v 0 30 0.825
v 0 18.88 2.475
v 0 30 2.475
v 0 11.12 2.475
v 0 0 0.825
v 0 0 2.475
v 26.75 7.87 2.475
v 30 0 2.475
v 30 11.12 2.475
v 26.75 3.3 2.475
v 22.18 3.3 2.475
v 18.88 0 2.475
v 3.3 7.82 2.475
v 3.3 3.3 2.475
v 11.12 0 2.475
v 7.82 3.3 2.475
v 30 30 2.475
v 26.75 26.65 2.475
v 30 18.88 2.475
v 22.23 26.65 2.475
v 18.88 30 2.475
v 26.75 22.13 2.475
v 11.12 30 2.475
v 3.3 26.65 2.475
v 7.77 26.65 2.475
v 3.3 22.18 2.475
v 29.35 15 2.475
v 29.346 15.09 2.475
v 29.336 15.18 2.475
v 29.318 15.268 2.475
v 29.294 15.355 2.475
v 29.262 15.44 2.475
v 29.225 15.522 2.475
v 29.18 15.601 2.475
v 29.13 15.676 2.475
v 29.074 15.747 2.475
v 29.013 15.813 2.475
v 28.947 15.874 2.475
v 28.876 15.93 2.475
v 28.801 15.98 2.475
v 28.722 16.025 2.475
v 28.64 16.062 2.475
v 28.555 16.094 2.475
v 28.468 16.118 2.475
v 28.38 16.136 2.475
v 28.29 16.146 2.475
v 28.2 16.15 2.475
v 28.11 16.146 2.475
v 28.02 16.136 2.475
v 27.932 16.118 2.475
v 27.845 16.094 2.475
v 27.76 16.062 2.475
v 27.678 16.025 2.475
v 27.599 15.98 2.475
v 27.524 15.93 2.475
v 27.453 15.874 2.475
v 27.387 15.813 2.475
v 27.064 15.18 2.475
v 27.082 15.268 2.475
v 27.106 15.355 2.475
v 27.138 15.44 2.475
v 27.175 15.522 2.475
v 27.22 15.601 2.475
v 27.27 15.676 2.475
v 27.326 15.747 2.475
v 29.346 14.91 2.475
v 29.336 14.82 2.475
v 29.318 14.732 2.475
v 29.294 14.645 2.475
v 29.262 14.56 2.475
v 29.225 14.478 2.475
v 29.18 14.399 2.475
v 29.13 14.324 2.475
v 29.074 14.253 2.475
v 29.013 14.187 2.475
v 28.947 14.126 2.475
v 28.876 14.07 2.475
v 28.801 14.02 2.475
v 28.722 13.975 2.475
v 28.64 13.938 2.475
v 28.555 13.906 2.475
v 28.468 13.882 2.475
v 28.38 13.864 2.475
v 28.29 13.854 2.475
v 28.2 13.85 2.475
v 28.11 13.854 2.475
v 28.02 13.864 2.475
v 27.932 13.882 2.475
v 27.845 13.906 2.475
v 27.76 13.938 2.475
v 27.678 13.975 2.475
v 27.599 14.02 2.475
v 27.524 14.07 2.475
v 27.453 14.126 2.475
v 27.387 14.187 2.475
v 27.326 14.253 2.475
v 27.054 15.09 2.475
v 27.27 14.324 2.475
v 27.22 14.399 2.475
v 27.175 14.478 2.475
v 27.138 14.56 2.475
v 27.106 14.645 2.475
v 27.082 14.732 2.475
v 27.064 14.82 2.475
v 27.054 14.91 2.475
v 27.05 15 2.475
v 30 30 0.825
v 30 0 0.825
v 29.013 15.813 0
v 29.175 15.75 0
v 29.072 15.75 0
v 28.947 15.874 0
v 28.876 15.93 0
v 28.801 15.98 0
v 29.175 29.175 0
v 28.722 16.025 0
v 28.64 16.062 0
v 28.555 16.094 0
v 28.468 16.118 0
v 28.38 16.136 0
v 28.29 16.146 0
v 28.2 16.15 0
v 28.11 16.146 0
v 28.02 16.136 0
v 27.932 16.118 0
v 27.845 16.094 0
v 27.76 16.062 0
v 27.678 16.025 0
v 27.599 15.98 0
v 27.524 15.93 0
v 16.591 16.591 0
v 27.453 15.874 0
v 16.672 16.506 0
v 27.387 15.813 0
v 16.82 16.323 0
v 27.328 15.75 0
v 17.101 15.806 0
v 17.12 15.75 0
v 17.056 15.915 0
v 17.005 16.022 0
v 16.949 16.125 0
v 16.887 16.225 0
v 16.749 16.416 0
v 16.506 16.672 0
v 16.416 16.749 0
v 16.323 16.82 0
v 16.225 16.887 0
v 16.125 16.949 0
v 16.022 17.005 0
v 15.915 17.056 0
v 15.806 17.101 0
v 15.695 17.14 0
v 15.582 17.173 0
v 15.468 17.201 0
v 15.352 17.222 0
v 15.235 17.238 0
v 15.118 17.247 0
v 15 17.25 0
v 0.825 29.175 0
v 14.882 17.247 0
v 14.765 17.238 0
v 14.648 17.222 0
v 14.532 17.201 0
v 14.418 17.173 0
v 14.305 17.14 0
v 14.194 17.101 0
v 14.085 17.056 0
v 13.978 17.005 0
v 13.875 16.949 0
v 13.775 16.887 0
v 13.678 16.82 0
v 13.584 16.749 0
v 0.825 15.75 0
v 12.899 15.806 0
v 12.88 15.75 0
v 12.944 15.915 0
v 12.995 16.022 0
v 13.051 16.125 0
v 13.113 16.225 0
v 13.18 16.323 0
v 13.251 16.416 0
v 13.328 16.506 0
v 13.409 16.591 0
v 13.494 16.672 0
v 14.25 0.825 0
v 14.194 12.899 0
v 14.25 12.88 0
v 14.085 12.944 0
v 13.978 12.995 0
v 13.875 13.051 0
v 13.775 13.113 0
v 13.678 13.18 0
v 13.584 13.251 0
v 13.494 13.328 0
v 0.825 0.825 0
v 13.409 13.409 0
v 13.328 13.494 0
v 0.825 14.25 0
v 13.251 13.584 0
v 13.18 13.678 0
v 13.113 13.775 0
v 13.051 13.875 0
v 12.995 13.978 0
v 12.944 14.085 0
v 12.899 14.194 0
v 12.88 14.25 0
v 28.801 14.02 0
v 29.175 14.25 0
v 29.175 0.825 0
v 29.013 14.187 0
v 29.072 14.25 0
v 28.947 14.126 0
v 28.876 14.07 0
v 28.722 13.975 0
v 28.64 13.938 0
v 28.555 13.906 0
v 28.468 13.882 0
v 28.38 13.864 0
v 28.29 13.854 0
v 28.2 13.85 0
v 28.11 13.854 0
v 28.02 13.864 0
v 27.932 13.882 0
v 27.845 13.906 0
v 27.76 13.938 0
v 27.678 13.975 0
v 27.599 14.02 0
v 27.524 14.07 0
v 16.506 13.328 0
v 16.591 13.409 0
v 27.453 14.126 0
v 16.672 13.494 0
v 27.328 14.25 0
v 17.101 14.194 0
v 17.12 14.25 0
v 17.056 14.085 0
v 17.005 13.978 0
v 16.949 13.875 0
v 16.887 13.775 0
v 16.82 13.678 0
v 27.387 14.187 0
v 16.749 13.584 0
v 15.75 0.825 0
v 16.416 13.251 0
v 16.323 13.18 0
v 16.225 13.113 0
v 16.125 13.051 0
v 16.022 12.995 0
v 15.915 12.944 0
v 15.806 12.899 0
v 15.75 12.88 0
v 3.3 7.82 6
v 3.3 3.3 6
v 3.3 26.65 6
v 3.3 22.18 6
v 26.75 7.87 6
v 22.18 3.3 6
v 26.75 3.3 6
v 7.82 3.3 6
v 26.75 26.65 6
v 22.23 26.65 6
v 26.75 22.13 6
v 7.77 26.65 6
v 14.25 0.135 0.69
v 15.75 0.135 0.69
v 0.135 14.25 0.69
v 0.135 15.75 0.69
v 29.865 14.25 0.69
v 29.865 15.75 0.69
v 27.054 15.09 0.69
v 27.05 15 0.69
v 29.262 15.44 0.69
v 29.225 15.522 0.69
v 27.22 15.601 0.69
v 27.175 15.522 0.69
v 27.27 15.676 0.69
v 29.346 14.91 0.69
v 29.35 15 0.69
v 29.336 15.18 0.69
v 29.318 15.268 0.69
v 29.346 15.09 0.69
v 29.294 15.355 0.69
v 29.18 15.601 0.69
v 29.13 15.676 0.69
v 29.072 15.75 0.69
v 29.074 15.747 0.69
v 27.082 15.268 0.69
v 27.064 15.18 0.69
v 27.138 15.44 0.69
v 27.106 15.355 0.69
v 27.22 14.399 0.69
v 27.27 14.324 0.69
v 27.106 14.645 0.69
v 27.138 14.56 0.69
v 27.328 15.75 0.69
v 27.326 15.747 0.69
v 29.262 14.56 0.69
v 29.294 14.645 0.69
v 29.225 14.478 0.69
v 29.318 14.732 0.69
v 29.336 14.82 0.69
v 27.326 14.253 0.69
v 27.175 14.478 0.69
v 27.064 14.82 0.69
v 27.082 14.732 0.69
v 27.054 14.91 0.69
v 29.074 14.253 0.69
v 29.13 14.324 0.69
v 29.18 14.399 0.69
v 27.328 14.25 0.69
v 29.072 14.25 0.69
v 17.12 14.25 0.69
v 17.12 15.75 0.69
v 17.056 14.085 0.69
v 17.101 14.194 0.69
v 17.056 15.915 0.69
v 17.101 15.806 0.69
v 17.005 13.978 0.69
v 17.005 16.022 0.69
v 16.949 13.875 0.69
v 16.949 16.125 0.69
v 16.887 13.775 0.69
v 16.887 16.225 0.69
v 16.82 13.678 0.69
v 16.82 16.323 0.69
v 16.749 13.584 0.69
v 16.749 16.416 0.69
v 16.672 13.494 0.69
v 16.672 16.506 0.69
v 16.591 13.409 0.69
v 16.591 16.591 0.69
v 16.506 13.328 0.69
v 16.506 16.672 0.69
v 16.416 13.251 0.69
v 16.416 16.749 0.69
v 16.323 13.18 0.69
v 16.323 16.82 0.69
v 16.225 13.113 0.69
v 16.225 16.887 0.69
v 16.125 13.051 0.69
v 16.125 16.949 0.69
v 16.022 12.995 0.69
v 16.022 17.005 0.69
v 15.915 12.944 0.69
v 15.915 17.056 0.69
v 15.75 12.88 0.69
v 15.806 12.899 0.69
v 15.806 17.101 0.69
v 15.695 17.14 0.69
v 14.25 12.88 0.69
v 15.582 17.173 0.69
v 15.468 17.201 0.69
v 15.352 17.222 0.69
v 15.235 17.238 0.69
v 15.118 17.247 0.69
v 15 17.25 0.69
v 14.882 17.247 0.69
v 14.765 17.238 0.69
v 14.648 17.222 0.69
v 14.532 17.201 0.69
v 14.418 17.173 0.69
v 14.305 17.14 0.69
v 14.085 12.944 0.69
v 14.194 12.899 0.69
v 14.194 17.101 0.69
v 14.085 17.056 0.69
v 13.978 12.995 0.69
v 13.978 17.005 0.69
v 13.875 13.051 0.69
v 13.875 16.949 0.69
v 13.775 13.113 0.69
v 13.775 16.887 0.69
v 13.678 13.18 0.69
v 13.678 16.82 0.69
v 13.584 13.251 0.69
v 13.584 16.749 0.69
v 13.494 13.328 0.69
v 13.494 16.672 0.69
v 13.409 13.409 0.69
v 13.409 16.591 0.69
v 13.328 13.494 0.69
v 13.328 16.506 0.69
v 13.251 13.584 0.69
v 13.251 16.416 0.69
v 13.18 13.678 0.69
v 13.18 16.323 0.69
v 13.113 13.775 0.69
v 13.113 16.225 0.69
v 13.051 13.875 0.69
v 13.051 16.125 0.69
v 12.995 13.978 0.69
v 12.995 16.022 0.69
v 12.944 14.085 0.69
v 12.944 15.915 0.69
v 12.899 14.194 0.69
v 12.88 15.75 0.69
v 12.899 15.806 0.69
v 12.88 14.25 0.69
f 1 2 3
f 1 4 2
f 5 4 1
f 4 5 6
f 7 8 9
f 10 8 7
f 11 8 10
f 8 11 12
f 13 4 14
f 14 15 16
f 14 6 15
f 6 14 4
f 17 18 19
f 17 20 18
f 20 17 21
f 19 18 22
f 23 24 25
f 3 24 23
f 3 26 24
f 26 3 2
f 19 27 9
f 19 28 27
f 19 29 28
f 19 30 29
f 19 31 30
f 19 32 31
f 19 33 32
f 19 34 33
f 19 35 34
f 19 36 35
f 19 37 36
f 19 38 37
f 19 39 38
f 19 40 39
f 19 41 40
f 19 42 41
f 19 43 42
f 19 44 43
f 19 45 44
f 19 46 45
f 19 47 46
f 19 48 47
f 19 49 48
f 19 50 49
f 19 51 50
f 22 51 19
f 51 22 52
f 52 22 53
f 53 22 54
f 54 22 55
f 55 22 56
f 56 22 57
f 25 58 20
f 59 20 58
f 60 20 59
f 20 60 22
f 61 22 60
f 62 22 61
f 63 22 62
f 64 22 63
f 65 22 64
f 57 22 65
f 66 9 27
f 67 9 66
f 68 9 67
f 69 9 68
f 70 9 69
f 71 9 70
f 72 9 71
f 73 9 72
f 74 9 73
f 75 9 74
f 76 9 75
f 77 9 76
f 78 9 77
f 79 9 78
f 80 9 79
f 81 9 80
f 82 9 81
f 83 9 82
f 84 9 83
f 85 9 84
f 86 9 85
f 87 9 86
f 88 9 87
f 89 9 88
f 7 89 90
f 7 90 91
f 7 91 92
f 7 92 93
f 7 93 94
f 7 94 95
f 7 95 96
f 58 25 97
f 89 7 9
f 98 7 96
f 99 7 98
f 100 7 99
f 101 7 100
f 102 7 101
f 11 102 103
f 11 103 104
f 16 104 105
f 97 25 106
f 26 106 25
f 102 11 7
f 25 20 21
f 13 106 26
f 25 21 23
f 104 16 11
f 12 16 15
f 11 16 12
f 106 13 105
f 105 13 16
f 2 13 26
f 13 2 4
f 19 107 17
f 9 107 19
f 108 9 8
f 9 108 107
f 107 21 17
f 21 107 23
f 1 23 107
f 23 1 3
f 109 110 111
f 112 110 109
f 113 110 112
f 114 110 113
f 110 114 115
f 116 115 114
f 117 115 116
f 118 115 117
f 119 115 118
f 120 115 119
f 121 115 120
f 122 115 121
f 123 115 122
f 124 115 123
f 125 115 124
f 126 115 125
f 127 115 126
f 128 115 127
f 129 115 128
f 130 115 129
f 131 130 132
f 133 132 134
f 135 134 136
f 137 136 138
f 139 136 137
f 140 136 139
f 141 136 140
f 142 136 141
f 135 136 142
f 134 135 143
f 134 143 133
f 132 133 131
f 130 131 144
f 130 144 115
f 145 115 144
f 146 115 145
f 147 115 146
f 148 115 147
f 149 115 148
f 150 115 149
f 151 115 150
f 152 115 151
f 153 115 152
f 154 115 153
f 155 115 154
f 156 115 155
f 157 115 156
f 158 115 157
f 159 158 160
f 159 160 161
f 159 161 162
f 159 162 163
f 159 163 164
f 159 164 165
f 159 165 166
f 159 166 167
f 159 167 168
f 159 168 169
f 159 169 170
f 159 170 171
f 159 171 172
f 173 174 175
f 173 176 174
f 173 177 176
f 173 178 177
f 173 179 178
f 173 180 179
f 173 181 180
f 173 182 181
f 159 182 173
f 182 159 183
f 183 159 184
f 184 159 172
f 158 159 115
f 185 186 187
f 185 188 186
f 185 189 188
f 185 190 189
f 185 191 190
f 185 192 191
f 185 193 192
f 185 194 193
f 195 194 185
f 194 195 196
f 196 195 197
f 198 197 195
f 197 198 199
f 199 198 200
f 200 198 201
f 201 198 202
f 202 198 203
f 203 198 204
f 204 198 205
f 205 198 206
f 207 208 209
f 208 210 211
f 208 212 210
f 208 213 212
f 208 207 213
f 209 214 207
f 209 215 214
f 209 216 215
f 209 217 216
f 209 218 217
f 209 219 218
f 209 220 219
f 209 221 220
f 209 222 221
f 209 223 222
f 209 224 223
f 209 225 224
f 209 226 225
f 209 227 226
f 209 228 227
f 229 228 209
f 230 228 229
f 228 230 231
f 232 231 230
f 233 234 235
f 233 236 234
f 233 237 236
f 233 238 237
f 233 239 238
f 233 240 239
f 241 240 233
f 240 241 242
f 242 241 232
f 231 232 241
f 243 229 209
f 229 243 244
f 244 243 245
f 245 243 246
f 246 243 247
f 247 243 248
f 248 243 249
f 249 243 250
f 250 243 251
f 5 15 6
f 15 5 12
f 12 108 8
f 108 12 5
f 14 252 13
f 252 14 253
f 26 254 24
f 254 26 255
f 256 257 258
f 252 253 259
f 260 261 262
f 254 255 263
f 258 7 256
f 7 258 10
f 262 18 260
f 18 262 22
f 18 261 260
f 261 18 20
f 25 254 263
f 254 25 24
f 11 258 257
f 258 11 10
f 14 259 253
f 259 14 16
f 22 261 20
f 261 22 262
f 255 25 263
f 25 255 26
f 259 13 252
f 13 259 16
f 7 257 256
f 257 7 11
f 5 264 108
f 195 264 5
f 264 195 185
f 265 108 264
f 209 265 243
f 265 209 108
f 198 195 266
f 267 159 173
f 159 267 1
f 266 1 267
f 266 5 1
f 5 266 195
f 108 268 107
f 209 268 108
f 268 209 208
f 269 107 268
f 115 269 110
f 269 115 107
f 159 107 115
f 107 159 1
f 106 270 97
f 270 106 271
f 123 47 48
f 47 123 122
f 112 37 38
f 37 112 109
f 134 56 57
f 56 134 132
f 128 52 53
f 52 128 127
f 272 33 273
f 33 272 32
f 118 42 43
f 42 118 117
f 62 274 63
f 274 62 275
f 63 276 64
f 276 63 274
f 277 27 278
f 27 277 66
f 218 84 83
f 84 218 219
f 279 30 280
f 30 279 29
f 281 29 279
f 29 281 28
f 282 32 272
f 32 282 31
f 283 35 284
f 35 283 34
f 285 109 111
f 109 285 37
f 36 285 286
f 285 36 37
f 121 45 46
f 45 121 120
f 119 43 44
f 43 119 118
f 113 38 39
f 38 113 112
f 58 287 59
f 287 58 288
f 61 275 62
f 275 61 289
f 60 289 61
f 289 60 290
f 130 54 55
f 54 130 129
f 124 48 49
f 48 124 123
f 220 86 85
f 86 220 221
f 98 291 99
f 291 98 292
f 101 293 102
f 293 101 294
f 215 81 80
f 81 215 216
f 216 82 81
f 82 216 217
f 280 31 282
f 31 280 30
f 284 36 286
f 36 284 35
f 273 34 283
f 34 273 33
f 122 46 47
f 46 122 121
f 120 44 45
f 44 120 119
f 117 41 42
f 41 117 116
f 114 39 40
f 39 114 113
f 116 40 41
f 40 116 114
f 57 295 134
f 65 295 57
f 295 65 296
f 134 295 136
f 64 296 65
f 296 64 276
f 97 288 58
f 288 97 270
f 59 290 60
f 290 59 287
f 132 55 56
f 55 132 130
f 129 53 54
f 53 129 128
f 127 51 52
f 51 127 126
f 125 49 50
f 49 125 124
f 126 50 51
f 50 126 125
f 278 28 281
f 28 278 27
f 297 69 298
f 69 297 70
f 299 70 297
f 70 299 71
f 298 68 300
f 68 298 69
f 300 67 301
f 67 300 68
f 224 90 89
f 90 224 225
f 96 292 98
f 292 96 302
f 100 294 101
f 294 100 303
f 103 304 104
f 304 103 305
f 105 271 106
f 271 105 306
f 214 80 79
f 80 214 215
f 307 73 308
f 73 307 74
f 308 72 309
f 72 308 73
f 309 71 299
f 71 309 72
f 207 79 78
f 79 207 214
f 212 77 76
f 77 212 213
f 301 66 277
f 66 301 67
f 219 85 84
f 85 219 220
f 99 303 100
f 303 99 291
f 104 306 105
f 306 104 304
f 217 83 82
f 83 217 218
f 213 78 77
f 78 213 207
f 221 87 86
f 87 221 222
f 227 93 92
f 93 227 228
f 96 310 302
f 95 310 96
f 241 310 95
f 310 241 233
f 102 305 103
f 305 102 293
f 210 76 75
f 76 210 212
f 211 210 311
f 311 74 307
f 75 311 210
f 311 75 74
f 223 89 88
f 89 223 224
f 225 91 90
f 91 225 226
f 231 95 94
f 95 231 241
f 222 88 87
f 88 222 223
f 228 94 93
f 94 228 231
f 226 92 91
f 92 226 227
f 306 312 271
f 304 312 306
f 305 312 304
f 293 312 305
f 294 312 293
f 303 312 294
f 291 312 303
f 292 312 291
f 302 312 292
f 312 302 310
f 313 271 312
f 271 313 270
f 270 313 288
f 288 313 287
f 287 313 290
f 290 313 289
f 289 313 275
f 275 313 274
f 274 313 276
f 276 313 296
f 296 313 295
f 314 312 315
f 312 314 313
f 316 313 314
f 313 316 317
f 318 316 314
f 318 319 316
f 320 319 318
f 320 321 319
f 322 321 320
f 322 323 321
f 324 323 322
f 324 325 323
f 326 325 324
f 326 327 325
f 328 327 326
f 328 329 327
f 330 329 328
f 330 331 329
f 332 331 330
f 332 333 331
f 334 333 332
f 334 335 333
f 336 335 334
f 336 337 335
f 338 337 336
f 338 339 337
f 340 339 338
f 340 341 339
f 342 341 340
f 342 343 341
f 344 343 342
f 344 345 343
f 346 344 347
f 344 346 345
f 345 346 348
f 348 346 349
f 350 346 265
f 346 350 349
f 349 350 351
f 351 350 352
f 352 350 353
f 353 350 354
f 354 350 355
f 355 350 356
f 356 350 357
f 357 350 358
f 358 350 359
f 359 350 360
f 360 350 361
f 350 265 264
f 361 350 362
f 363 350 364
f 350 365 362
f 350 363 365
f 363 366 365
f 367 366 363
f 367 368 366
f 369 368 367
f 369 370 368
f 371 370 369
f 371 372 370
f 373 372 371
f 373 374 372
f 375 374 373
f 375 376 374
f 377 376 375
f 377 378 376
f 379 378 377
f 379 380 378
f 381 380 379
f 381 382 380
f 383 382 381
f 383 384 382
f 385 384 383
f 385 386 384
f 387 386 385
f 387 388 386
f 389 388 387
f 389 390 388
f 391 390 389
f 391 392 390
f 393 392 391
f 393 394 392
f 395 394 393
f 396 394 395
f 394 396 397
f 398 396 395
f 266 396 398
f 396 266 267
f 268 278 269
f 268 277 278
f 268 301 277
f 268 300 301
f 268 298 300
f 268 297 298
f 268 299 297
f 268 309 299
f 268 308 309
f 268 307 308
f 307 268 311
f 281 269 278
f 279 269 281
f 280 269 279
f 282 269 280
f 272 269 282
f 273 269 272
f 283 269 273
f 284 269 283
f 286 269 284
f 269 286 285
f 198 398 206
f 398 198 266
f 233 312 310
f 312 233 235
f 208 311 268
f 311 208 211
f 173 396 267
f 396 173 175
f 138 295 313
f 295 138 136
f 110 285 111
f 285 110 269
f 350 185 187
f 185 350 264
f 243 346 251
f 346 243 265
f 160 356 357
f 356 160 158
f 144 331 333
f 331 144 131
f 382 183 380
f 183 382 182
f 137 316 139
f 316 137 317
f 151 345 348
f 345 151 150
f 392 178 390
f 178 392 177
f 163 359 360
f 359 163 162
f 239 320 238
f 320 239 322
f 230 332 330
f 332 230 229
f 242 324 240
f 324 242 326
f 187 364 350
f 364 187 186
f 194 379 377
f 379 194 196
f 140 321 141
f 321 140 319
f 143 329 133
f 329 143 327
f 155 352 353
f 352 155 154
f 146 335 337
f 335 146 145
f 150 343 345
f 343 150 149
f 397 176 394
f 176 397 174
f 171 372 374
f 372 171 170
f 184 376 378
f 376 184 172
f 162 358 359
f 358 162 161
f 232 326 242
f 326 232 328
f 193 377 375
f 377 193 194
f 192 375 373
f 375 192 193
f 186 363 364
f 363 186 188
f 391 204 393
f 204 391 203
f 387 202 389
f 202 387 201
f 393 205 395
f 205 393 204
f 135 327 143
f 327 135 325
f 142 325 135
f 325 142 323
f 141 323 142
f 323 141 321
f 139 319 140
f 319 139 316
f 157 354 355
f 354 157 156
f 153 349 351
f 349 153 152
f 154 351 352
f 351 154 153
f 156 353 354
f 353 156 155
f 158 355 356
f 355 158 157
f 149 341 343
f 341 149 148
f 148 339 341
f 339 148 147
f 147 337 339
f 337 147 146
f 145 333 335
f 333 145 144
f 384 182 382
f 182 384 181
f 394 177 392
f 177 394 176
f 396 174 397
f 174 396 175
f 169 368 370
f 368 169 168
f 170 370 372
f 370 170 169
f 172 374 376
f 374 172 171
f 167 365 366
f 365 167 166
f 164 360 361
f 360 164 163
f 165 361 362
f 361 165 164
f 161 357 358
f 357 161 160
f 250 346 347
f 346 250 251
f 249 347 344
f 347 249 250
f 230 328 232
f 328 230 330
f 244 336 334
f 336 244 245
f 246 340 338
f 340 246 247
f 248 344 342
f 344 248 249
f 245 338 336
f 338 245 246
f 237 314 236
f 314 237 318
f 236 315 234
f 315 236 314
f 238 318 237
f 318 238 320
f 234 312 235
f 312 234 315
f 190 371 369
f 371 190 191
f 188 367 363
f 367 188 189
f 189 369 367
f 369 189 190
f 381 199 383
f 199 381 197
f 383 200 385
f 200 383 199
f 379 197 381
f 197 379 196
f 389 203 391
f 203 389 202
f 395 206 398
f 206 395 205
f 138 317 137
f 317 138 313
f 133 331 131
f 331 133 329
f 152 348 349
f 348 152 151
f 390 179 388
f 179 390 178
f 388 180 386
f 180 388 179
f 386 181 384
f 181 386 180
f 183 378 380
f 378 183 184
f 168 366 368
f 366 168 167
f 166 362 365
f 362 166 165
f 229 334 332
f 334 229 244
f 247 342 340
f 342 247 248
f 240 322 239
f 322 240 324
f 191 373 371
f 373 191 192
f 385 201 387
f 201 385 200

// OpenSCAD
// file: settings.scad
cube_width=30;
cube_height=16;
cube_thickness=3.3;

cap_width=30;
cap_height=6;
cap_thickness=3.3;

glyph_depth=0.7;
glyph_thickness=1.5;

photo_resitor_hole_r = 3.1;
spring_contact_hole_r = 3.35;
// file: cap_1x1.scad
include <settings.scad>

module cap_1x1(width, height, thickness, holes_mask)
{
    width1=width-thickness;
    difference()
    {
        union()
        {
            cube([width, width, thickness*3/4]);
            translate([thickness,thickness,0])cube([width-2*thickness, width-2*thickness, height]);
        }
        union()
        {
            translate([width/2,width/2,0])rotate([0,0,45])translate([-width1/2,-width1/2,thickness*3/4]) cube([width1,width1,height]);
                        //corners
            translate([0,0.25*thickness,0])rotate([45,0,0]) translate([-0.5*width, -width, -0.5*height]) cube([2*width, width, 2*height]);
            translate([0.25*thickness,0,0]) rotate([0,-45,0]) translate([-width, -0.5*width, -0.5*height]) cube([width, 2*width, 2*height]);
            translate([width-0.25*thickness,0,0]) rotate([0,45,0]) translate([0, 0, -0.5*height]) cube([width, 2*width, 2*height]);
            translate([0,width-0.25*thickness,0]) rotate([-45,0,0]) translate([-0.5*width, 0, -0.5*height]) cube([2*width, width, 2*height]);
            
            if (holes_mask >= 8)
            {
                translate([width/2, thickness-1.5, -0.5]) cylinder(r=1.15, h=height*1.5, $fn=80);
            }
            if ((holes_mask%8) >= 4)
            {
                translate([width/2, width-thickness+1.5, -0.5]) cylinder(r=1.15, h=height*1.5, $fn=80);
            }
            if ((holes_mask%4)>= 2)
            {
                translate([thickness-1.5, width/2, -0.5]) cylinder(r=1.15, h=height*1.5, $fn=80);
            }
            if (holes_mask%2 >= 1)
            {
                translate([width-thickness+1.5, width/2, -0.5]) cylinder(r=1.15, h=height*1.5, $fn=80);
            }
        }
    }
}

cap_1x1(cap_width, cap_height, cap_thickness, 9);
//ring(10,1,1);
//arrow(1, 20, 3, 1);
//transistor_npn(30, 1, 1);
// main file
use <cap_1x1.scad>
include <settings.scad>

module cap_1x1_wireY(width, height, thickness)
{
    difference()
    {
        cap_1x1(width, height, thickness, 1);
        translate([0,(width-glyph_thickness)/2,-0.01]) cube([width, glyph_thickness, glyph_depth]);
        translate([(width-glyph_thickness)/2, 0, -0.01]) cube([glyph_thickness, width/2, glyph_depth]);
        translate([width/2, width/2, -0.01]) cylinder(h=glyph_depth, r=1.5*glyph_thickness, $fn=120);
    }
}

cap_1x1_wireY(cap_width, cap_height, cap_thickness);
